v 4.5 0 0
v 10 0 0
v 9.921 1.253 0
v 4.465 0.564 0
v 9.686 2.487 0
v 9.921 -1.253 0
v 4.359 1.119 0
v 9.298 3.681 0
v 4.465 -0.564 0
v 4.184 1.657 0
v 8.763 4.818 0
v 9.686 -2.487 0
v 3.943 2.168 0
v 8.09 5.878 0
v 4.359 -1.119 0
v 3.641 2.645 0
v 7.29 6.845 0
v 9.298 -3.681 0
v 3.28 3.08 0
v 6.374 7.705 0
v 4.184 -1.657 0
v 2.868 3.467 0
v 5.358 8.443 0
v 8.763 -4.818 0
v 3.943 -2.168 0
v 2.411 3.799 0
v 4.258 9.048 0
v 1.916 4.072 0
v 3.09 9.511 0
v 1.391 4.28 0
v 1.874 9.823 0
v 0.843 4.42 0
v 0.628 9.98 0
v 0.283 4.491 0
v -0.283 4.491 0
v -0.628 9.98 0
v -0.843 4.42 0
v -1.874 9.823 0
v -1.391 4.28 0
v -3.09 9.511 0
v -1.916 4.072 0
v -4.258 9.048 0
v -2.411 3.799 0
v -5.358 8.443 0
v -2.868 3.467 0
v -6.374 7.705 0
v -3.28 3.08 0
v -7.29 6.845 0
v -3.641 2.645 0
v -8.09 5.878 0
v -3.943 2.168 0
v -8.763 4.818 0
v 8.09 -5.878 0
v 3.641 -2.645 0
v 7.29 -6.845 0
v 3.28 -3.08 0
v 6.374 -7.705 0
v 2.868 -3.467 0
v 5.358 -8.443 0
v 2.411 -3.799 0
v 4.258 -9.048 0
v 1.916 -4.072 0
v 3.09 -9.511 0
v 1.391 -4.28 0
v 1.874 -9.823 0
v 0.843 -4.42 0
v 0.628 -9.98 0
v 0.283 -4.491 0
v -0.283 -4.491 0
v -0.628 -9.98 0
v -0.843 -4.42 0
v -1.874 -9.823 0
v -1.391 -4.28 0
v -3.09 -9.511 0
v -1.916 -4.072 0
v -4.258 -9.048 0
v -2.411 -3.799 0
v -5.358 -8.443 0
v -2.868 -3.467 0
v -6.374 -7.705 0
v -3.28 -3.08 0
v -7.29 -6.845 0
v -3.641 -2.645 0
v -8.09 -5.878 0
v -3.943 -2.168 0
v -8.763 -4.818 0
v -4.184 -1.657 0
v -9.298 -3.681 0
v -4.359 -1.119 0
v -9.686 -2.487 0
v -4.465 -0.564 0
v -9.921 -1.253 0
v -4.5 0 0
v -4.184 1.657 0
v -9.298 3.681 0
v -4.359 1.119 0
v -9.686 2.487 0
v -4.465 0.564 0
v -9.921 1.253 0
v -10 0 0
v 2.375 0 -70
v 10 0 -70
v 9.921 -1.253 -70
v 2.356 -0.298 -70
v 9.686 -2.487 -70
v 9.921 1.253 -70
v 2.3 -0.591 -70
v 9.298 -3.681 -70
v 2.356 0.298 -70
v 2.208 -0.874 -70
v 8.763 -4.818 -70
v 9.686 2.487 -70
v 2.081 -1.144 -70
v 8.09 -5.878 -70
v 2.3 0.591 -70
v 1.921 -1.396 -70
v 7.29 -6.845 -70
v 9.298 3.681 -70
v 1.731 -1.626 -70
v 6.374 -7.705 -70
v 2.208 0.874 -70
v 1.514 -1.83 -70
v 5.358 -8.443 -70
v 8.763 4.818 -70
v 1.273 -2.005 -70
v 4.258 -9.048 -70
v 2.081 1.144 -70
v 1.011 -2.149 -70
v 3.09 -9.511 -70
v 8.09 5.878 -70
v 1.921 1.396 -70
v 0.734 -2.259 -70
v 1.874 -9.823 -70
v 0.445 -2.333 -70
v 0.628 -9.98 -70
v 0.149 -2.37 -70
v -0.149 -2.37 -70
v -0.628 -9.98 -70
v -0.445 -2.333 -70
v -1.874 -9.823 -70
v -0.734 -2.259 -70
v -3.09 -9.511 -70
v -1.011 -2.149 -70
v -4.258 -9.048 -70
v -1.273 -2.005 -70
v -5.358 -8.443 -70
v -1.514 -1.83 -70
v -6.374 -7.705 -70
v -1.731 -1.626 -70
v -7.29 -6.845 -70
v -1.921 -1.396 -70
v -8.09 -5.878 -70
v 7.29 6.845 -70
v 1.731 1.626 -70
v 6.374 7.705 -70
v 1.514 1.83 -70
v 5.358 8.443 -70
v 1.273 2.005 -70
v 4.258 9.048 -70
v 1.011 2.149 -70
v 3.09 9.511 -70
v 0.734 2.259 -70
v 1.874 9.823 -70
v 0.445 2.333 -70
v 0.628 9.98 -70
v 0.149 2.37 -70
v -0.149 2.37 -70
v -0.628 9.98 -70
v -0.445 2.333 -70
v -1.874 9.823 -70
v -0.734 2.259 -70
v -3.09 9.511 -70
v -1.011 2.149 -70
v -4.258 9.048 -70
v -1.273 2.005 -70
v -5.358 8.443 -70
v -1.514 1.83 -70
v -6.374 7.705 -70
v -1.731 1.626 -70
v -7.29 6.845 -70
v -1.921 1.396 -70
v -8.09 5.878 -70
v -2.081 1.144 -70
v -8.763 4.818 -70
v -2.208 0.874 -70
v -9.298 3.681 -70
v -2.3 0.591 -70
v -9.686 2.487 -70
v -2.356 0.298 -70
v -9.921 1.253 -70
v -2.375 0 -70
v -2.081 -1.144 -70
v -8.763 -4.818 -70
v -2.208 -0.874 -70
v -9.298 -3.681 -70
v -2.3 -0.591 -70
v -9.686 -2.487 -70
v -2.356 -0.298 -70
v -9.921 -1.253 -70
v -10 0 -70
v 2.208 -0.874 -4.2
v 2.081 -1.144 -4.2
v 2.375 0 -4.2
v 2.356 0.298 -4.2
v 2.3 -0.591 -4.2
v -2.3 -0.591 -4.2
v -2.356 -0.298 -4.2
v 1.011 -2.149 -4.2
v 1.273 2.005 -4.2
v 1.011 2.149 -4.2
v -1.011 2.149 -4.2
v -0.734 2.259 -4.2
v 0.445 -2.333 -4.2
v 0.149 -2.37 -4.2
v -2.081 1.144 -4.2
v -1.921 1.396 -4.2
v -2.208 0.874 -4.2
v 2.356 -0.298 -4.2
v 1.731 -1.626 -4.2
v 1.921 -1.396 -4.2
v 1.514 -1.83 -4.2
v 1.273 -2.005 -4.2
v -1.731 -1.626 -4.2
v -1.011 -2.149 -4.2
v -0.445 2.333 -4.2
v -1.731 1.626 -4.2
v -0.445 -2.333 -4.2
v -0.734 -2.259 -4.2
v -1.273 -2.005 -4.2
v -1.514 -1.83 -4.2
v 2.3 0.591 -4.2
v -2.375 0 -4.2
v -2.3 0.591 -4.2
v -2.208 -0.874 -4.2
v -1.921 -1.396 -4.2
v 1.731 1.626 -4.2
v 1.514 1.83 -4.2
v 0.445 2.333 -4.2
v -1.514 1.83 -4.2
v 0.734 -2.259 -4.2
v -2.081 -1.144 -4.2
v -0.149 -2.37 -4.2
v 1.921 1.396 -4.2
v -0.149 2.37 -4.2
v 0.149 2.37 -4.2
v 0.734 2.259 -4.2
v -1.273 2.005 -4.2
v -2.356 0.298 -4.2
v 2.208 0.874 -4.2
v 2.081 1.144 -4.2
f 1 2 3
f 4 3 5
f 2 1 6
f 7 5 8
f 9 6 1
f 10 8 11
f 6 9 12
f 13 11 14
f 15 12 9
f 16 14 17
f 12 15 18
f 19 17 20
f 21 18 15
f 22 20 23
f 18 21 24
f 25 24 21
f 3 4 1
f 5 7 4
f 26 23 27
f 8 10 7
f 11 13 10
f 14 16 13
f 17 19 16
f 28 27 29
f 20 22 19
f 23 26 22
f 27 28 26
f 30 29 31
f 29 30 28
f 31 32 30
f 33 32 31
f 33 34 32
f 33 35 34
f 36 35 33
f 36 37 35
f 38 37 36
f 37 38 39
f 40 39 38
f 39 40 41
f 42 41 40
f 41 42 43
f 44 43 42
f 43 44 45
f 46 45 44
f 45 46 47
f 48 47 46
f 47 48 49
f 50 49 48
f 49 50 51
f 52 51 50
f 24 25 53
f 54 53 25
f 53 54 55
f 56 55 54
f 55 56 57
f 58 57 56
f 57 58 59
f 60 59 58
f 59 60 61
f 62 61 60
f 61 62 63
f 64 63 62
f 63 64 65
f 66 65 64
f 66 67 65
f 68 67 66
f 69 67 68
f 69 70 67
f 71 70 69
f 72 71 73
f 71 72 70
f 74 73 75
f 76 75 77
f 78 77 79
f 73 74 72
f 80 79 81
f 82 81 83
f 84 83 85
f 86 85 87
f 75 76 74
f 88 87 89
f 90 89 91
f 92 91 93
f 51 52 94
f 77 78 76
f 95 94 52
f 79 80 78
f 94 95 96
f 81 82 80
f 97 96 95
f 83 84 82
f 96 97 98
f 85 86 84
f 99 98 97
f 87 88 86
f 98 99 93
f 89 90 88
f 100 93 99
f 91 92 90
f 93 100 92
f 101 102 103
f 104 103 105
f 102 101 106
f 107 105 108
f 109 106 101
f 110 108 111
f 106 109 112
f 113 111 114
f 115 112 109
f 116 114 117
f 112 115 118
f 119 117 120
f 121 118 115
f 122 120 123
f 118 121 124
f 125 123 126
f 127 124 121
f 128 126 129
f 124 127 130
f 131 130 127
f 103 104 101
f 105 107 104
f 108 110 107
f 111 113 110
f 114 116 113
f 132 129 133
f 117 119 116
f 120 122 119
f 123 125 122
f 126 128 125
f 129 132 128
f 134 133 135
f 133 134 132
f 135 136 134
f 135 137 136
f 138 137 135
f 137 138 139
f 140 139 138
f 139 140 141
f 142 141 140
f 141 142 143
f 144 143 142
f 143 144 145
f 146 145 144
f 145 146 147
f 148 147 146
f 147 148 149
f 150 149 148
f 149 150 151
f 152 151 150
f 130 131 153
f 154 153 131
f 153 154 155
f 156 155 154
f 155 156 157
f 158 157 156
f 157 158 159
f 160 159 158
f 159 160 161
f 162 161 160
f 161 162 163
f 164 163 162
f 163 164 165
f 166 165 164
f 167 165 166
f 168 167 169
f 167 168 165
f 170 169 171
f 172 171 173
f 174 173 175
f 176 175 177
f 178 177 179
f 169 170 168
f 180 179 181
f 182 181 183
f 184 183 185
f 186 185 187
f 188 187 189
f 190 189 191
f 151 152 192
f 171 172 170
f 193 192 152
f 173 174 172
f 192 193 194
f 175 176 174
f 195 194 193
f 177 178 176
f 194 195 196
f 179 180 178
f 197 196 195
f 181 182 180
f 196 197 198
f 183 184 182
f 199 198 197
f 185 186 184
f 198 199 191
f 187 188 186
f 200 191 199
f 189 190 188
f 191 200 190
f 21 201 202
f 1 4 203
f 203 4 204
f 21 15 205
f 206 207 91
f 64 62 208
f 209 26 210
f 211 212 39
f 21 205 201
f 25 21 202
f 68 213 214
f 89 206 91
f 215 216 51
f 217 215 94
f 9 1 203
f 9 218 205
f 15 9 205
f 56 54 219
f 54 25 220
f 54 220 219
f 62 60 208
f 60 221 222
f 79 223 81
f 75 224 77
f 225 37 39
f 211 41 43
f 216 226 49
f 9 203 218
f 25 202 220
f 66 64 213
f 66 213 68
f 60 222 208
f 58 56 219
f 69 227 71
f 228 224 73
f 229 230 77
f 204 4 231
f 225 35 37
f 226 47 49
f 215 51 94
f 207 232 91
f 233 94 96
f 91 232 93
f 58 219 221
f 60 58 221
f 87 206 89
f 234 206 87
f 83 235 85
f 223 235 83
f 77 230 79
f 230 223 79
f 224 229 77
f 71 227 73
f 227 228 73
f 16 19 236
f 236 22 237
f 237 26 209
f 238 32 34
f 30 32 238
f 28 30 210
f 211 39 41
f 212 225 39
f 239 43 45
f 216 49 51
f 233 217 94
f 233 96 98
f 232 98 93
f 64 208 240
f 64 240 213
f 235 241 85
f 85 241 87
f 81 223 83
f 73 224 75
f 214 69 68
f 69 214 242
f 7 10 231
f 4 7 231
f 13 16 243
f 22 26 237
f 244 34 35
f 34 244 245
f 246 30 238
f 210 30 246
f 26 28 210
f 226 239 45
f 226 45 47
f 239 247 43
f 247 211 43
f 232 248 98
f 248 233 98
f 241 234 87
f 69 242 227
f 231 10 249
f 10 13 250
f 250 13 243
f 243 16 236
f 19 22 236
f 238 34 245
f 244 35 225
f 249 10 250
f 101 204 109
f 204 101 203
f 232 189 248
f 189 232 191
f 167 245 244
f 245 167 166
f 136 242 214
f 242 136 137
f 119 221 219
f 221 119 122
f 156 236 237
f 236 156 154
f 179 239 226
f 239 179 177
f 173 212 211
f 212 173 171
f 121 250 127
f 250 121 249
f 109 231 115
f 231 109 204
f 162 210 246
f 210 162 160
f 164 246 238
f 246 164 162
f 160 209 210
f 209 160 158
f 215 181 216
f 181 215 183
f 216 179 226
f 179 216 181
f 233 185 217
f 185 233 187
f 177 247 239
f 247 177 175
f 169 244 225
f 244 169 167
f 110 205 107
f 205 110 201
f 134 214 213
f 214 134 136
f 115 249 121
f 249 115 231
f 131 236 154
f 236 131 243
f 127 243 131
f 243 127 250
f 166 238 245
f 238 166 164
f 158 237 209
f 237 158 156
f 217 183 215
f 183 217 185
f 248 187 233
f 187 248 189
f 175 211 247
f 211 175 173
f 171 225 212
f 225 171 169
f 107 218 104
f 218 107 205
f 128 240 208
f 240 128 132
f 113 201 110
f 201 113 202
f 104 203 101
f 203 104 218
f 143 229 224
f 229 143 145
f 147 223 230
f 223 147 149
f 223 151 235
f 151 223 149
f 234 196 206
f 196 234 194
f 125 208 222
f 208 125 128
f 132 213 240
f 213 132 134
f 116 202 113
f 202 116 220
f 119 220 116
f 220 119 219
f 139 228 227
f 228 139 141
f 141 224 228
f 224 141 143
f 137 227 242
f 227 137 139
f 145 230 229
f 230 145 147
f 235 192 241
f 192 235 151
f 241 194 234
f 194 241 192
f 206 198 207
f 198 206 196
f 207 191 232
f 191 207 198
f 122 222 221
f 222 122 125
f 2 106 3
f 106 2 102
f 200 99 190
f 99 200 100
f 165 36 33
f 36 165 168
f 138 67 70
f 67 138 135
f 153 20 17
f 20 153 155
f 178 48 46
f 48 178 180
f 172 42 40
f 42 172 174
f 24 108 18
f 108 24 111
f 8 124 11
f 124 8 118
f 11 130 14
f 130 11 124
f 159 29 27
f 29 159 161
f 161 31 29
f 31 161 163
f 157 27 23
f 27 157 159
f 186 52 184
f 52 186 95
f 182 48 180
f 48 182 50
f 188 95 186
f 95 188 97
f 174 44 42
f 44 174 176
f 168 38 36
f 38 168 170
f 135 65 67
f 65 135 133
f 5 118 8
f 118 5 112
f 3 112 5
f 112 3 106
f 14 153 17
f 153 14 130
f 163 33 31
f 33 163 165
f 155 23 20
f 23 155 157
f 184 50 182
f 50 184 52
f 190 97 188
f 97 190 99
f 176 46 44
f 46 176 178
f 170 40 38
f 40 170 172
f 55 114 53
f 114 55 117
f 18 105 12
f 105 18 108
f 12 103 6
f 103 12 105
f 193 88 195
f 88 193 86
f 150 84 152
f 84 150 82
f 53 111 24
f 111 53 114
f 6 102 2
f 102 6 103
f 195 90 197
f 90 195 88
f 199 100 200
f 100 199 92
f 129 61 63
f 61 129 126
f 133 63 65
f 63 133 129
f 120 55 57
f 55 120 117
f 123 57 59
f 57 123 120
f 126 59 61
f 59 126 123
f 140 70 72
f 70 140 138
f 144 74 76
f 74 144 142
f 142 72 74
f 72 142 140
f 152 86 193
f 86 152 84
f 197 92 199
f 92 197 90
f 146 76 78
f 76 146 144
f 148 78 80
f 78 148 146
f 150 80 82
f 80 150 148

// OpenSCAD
$fn = 50;


difference() {
	union() {
		translate(v = [0, 0, -70.0000000000]) {
			cylinder(h = 70, r = 10.0000000000);
		}
		cylinder(h = 0, r = 20.0000000000);
	}
	union() {
		translate(v = [0, 0, 0]) {
			rotate(a = [0, 0, 0]) {
				difference() {
					union() {
						#translate(v = [0, 0, -70.0000000000]) {
							cylinder(h = 70, r = 2.2500000000);
						}
						#translate(v = [0, 0, -4.2000000000]) {
							cylinder(h = 4.2000000000, r = 10.0000000000, r1 = 2.3750000000, r2 = 4.5000000000);
						}
						#translate(v = [0, 0, -70.0000000000]) {
							cylinder(h = 70, r = 2.3750000000);
						}
						#translate(v = [0, 0, -70.0000000000]) {
							cylinder(h = 70, r = 2.2500000000);
						}
					}
					union();
				}
			}
		}
	}
}
